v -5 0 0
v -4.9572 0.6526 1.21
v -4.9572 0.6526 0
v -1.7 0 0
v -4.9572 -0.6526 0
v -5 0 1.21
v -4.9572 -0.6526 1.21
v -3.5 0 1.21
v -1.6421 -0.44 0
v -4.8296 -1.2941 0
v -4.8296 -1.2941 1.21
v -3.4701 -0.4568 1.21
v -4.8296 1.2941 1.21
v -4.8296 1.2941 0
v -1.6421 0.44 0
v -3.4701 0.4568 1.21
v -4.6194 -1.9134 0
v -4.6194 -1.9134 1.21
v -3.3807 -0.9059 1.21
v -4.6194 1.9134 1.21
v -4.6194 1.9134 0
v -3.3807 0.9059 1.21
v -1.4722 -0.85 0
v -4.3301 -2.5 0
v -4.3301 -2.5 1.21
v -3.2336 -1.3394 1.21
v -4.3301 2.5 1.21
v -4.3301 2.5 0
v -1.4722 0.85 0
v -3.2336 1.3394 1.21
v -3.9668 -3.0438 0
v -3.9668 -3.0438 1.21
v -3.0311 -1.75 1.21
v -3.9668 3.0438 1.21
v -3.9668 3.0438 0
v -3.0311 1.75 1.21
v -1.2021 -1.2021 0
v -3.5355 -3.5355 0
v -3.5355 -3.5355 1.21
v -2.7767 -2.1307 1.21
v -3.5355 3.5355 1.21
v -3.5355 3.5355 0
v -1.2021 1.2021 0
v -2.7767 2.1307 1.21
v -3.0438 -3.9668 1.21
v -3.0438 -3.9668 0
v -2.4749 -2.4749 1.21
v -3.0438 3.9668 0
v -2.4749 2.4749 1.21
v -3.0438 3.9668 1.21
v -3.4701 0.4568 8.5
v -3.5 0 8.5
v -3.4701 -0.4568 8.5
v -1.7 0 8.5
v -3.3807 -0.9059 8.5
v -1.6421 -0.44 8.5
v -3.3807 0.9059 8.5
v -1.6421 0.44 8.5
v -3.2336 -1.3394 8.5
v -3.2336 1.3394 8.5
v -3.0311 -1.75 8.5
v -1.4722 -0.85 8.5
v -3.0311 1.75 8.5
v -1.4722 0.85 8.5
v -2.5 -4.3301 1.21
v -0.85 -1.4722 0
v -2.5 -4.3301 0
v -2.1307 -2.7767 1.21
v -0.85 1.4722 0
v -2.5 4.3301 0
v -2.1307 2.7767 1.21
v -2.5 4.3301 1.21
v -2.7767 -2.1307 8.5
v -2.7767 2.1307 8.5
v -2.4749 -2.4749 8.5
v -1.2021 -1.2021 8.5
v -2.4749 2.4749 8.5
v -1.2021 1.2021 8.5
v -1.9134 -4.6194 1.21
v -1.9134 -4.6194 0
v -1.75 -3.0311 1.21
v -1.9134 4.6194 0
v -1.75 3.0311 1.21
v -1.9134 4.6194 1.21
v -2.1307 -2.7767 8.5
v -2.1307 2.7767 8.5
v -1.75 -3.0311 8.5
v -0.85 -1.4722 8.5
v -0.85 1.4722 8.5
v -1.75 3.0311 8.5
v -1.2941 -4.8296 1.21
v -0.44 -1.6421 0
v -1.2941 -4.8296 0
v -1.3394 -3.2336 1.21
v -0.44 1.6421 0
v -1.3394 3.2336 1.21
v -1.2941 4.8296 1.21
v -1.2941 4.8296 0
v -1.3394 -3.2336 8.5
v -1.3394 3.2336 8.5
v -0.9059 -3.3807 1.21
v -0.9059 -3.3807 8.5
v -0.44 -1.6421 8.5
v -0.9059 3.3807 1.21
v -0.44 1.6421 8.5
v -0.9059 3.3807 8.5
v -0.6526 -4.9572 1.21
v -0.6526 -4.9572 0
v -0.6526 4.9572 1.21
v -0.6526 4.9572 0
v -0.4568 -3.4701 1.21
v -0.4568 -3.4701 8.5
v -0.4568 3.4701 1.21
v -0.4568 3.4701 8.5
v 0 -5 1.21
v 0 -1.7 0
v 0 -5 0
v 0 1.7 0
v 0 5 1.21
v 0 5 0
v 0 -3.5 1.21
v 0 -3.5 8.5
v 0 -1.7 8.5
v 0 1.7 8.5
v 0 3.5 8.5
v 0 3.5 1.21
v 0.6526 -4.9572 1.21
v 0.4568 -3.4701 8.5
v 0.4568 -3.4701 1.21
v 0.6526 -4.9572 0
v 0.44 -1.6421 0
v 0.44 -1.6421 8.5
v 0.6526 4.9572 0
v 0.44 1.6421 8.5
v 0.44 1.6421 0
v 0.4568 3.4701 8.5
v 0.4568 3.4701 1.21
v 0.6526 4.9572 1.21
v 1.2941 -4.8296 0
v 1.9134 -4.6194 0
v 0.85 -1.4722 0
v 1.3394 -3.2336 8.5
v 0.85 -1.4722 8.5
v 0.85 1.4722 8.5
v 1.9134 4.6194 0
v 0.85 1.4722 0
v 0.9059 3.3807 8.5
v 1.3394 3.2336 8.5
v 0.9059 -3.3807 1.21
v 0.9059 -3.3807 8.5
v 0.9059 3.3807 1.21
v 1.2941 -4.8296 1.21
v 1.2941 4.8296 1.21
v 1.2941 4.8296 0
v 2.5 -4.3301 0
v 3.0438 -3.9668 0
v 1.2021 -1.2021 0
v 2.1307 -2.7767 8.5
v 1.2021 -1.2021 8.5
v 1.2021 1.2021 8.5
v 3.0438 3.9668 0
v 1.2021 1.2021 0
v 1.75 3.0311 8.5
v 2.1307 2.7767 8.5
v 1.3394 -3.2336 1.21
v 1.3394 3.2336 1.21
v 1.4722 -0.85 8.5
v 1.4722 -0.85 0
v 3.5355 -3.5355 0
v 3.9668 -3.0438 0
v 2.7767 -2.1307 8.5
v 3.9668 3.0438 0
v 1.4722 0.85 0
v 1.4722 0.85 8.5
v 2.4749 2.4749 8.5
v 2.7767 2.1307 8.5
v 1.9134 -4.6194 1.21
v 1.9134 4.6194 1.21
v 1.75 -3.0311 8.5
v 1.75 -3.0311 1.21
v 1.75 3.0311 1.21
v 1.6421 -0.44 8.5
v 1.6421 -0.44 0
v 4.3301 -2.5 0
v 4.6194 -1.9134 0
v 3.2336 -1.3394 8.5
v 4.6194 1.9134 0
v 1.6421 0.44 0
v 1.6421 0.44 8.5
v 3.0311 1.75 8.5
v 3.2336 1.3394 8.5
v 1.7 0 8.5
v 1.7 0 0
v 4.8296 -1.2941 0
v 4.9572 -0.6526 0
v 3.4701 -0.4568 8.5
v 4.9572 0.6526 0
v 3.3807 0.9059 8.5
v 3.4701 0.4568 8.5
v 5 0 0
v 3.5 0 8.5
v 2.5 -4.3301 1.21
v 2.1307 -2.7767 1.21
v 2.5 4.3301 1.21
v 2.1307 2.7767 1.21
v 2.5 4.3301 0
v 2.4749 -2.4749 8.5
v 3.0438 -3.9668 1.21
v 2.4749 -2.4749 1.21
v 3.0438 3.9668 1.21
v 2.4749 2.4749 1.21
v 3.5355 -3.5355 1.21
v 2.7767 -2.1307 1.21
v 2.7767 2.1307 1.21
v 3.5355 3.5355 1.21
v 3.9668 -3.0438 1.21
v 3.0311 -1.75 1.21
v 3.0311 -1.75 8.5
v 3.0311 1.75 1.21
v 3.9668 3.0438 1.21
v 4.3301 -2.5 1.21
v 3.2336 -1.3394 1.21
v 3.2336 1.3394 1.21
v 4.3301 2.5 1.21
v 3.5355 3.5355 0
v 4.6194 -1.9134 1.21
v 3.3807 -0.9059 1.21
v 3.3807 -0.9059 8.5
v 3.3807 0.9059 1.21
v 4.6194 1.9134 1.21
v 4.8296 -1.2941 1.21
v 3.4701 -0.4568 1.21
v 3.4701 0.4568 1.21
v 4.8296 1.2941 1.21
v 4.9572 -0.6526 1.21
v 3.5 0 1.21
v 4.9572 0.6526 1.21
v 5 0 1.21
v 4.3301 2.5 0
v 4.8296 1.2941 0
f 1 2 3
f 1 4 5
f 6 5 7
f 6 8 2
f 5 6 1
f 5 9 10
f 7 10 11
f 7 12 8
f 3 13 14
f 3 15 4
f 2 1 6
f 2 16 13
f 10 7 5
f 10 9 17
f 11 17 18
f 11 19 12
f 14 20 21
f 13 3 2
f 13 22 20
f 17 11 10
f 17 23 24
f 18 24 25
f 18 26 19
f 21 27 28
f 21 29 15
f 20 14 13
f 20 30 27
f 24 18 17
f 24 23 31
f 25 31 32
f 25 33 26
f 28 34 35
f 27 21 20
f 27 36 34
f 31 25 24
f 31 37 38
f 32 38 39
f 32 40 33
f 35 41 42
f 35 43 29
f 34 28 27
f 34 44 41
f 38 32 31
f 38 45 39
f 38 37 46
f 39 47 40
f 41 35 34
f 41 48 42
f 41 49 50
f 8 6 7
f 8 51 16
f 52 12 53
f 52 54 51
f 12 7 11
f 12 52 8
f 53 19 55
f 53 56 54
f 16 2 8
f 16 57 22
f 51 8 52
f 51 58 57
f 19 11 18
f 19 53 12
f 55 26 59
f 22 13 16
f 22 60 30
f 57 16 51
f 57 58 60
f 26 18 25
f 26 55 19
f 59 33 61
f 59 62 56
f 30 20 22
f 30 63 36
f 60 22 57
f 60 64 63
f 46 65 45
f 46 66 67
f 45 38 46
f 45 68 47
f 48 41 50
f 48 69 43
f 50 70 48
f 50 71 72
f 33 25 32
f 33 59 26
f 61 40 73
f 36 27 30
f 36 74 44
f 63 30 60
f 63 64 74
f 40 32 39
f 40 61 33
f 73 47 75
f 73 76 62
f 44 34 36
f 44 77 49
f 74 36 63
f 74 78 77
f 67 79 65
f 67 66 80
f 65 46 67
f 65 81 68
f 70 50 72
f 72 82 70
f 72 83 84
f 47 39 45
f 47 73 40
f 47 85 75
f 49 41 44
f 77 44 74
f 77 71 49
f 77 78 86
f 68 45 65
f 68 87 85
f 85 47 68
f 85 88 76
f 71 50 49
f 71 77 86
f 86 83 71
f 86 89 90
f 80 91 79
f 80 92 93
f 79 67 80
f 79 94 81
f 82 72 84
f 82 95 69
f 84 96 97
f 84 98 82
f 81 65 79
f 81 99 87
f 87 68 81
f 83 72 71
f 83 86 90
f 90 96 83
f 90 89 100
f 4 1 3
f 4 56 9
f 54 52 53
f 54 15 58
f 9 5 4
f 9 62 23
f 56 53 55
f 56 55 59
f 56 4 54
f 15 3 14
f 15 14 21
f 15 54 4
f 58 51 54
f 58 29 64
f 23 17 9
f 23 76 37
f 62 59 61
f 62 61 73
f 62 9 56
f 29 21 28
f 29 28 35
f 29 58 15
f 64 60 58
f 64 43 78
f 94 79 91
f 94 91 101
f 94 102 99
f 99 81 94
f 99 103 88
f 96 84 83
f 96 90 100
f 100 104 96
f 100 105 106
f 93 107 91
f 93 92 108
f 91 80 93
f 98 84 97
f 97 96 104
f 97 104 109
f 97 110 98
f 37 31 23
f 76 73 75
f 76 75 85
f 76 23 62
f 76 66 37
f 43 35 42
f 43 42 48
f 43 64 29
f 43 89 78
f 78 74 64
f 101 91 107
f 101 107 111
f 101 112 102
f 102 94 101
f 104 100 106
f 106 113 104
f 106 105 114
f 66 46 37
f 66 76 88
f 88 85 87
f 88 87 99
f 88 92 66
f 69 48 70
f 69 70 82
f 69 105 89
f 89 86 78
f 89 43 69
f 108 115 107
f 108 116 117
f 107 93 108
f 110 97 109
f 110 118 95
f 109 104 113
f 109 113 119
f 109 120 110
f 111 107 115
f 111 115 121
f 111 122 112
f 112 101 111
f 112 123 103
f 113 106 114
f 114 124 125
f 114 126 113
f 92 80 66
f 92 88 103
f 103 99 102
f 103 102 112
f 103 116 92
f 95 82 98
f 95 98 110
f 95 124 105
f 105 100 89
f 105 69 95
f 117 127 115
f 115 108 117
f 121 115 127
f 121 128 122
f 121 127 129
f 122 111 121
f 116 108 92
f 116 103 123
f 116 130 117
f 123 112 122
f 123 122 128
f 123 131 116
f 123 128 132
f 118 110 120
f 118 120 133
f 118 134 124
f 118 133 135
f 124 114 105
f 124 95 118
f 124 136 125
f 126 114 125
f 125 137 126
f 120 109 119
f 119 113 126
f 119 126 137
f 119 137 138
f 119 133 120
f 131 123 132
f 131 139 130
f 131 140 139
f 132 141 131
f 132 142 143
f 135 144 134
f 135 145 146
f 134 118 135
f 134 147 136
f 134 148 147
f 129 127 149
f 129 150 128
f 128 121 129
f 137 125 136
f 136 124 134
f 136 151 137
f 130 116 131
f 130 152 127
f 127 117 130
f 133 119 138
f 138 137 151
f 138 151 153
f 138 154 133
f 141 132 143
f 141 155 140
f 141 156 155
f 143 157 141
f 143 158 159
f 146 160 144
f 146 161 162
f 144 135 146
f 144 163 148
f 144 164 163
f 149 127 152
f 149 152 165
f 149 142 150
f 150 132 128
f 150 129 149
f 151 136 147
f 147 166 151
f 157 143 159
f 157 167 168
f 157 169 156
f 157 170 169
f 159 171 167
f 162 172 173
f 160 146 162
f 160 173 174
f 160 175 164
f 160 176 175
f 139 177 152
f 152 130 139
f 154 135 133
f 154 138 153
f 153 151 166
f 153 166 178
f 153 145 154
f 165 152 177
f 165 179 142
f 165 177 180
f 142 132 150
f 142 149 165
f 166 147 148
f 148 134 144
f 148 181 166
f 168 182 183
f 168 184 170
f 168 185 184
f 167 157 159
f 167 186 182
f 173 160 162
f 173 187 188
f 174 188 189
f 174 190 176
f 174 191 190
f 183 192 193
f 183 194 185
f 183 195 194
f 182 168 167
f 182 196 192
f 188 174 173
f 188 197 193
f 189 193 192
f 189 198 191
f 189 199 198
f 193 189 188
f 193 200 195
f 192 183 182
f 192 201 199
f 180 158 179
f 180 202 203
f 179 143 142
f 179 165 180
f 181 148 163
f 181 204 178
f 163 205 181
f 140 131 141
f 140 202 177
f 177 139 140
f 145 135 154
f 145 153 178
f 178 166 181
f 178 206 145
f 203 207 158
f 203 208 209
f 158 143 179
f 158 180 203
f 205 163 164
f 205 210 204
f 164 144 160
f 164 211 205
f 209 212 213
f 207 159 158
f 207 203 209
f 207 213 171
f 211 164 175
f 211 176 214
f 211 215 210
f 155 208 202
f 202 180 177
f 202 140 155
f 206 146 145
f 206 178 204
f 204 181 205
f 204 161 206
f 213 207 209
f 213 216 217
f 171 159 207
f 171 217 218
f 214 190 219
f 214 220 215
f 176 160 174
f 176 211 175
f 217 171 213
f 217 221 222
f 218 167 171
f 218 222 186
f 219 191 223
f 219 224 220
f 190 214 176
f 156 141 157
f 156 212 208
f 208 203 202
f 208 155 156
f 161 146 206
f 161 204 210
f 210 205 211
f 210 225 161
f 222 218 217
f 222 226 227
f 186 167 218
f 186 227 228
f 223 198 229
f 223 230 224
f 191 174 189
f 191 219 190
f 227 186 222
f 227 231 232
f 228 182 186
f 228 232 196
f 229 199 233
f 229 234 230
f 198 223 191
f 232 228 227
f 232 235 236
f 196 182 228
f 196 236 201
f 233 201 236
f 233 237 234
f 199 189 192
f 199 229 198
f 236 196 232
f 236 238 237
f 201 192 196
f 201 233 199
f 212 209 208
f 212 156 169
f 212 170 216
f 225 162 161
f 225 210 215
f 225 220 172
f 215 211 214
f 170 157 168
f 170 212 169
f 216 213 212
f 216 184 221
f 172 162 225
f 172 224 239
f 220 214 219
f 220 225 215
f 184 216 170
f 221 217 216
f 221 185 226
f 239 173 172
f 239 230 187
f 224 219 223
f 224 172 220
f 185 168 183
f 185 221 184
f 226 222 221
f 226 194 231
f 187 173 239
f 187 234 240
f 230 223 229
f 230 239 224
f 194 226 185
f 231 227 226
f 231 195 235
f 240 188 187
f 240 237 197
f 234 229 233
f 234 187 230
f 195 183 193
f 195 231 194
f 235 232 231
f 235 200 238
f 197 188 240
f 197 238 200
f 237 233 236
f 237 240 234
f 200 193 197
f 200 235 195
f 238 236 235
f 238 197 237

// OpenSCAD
// file: params.scad
// 18 舵机六足 · 3D 打印机身 · 共享参数和公共模块（本文件自己不导出 STL）
//
// 腿的几何尺寸和固件 firmware/hexapod_g7pro/params.h 的默认值一一对应：
//   coxa_len ↔ coxa    femur_len ↔ femur    tibia_len ↔ tibia
//   front_x / front_y / front_angle / mid_y / rear_x / rear_y / rear_angle 同名
// 所以打印这套机身，固件的腿长和安装位置参数都不用改。
//
// 坐标约定（和固件一致）：
//   机身坐标：X+ = 前，Y+ = 左，Z+ = 上，原点 = 机身中心，高度原点 = 大腿舵机轴。
//   腿坐标：原点 = 基节转轴，X+ = 腿朝外，Y+ = 逆时针一侧，Z+ = 上。
// 6 条腿的零件完全一样（不分左右），左右舵机转向的差别由固件里的 dir 参数处理。

/* [舵机 MG90S（量你自己的）] */
servo_w = 12.2;           // 机身宽度 (mm)
servo_l = 22.8;           // 机身长度，沿安装耳方向 (mm)
ear_span = 32.5;          // 两个安装耳外端之间的总长 (mm)
ear_hole_spacing = 28.0;  // 两个安装孔的中心距 (mm)
ear_z = 15.9;             // 机壳底面 → 安装耳下表面 (mm)
ear_t = 2.5;              // 安装耳厚度 (mm)
case_h = 22.7;            // 机壳底面 → 机壳顶面（不含输出轴）(mm)
shaft_off = 5.4;          // 输出轴中心 → 机身中心，沿长度方向 (mm)
shaft_gap = 4.0;          // 机壳顶面 → 舵机臂贴合面 (mm)

/* [舵机臂（单边臂，量你自己的）] */
horn_hub_d = 7.6;         // 舵机臂中心圆盘直径 (mm)
horn_len = 18.5;          // 中心 → 臂尖 (mm)
horn_w_hub = 6.2;         // 臂根宽度 (mm)
horn_w_tip = 4.2;         // 臂尖宽度 (mm)
horn_t = 1.6;             // 臂厚 = 零件上凹槽深度 (mm)
horn_holes = [10.5, 14.5];// 固定舵机臂的两个孔到中心的距离 (mm)
horn_screw_access = 5.5;  // 中心过孔：舵机臂中心螺丝和螺丝刀从这里进 (mm)

/* [腿的几何（和固件 params.h 一致）] */
coxa_len = 28;            // 基节转轴 → 大腿舵机轴 (mm)
femur_len = 50;           // 大腿舵机轴 → 小腿舵机轴 (mm)
tibia_len = 75;           // 小腿舵机轴 → 脚尖 (mm)
front_x = 60; front_y = 40; front_angle = 45;
mid_y = 55;
rear_x = 60; rear_y = 40; rear_angle = 135;

/* [打印余量和螺丝] */
clearance = 0.4;          // 方孔比舵机大多少 (mm)；太紧改 0.5
screw_pilot = 1.6;        // M2 自攻螺丝底孔（舵机安装耳）(mm)
horn_screw_hole = 2.0;    // 舵机臂固定螺丝过孔 (mm)
m3_hole = 3.4;            // M3 通孔 (mm)

/* [机身] */
plate_t = 3.0;            // 底板 / 甲板厚度 (mm)
standoff_h = 25;          // 底板和甲板之间的 M3 铜柱长度 (mm)
bar_t = 4.0;              // 大腿板厚度 (mm)
mount_t = 3.0;            // 舵机安装板厚度 (mm)
coxa_horn_z = 11;         // 基节舵机臂贴合面高度（相对大腿轴）(mm)

/* [Hidden] */
// 6 条腿：[髋轴 X, 髋轴 Y, 朝向°]，顺序 LF LM LR RF RM RR（和固件 leg 0..5 一致）
legs = [
  [ front_x,  front_y,  front_angle],
  [ 0,        mid_y,    90],
  [-rear_x,   rear_y,   rear_angle],
  [ front_x, -front_y, -front_angle],
  [ 0,       -mid_y,   -90],
  [-rear_x,  -rear_y,  -rear_angle]
];
leg_names = ["LF", "LM", "LR", "RF", "RM", "RR"];

pocket_w = servo_w + clearance;
pocket_l = servo_l + clearance;
// 舵机本地坐标：输出轴 = +Z，舵机臂贴合面在 z = 0，机身沿 +X 伸出（机身中心 x = shaft_off）
ear_low = -shaft_gap - case_h + ear_z;       // 安装耳“朝机壳底”的那一面，安装板贴在这里
plate_top_z = coxa_horn_z + ear_low;         // 底板上表面高度（相对大腿轴）
deck_z = plate_top_z + standoff_h;           // 甲板下表面高度

module at_leg(l) translate([l[0], l[1]]) rotate(l[2]) children();

// 舵机实体（装配预览 / 干涉检查用）
module servo_body() {
  color("DimGray") {
    translate([shaft_off - servo_l / 2, -servo_w / 2, -shaft_gap - case_h]) cube([servo_l, servo_w, case_h]);
    // 耳朵和输出轴都留 0.05 mm，避免“刚好贴着”被干涉检查当成碰撞
    translate([shaft_off - ear_span / 2, -servo_w / 2, ear_low + 0.05]) cube([ear_span, servo_w, ear_t - 0.05]);
    translate([0, 0, -shaft_gap]) cylinder(d = 5, h = shaft_gap - 0.05);
  }
}

// 安装板上的舵机方孔 + 两个安装耳螺丝底孔（在舵机本地坐标里，穿过安装板）
module servo_mount_cut() {
  translate([shaft_off - pocket_l / 2, -pocket_w / 2, ear_low - mount_t - 1]) cube([pocket_l, pocket_w, mount_t + 2]);
  for (s = [-1, 1]) translate([shaft_off + s * ear_hole_spacing / 2, 0, ear_low - mount_t - 1])
    cylinder(d = screw_pilot, h = mount_t + 2, $fn = 16);
}

// 单边舵机臂的 2D 外形：中心在原点，臂沿 +X
module horn_2d(extra = 0) {
  hull() {
    circle(d = horn_hub_d + extra);
    translate([0, -(horn_w_hub + extra) / 2]) square([0.01, horn_w_hub + extra]);
    translate([horn_len - horn_w_tip / 2, 0]) circle(d = horn_w_tip + extra);
  }
}

// 舵机臂凹槽：从 z = 0 往 +Z 挖 horn_t 深，加中心过孔和两个螺丝过孔（贯穿 depth）
module horn_cut(depth) {
  translate([0, 0, -0.01]) linear_extrude(horn_t + 0.01) horn_2d(clearance);
  translate([0, 0, -1]) cylinder(d = horn_screw_access, h = depth + 2, $fn = 24);
  for (r = horn_holes) translate([r, 0, -1]) cylinder(d = horn_screw_hole, h = depth + 2, $fn = 16);
}
// main file
// 转轴套 pivot_bushing：打 6 个（6 条腿通用）。法兰朝下平放。
// U 形支架装好后，从下面穿过下摆臂的孔顶到托架底面，M3 × 12 螺丝穿过它拧进托架里的螺母。
include <parts.scad>
translate([0, 0, -(bush_z0 - bush_flange[1])]) pivot_bushing_local();
